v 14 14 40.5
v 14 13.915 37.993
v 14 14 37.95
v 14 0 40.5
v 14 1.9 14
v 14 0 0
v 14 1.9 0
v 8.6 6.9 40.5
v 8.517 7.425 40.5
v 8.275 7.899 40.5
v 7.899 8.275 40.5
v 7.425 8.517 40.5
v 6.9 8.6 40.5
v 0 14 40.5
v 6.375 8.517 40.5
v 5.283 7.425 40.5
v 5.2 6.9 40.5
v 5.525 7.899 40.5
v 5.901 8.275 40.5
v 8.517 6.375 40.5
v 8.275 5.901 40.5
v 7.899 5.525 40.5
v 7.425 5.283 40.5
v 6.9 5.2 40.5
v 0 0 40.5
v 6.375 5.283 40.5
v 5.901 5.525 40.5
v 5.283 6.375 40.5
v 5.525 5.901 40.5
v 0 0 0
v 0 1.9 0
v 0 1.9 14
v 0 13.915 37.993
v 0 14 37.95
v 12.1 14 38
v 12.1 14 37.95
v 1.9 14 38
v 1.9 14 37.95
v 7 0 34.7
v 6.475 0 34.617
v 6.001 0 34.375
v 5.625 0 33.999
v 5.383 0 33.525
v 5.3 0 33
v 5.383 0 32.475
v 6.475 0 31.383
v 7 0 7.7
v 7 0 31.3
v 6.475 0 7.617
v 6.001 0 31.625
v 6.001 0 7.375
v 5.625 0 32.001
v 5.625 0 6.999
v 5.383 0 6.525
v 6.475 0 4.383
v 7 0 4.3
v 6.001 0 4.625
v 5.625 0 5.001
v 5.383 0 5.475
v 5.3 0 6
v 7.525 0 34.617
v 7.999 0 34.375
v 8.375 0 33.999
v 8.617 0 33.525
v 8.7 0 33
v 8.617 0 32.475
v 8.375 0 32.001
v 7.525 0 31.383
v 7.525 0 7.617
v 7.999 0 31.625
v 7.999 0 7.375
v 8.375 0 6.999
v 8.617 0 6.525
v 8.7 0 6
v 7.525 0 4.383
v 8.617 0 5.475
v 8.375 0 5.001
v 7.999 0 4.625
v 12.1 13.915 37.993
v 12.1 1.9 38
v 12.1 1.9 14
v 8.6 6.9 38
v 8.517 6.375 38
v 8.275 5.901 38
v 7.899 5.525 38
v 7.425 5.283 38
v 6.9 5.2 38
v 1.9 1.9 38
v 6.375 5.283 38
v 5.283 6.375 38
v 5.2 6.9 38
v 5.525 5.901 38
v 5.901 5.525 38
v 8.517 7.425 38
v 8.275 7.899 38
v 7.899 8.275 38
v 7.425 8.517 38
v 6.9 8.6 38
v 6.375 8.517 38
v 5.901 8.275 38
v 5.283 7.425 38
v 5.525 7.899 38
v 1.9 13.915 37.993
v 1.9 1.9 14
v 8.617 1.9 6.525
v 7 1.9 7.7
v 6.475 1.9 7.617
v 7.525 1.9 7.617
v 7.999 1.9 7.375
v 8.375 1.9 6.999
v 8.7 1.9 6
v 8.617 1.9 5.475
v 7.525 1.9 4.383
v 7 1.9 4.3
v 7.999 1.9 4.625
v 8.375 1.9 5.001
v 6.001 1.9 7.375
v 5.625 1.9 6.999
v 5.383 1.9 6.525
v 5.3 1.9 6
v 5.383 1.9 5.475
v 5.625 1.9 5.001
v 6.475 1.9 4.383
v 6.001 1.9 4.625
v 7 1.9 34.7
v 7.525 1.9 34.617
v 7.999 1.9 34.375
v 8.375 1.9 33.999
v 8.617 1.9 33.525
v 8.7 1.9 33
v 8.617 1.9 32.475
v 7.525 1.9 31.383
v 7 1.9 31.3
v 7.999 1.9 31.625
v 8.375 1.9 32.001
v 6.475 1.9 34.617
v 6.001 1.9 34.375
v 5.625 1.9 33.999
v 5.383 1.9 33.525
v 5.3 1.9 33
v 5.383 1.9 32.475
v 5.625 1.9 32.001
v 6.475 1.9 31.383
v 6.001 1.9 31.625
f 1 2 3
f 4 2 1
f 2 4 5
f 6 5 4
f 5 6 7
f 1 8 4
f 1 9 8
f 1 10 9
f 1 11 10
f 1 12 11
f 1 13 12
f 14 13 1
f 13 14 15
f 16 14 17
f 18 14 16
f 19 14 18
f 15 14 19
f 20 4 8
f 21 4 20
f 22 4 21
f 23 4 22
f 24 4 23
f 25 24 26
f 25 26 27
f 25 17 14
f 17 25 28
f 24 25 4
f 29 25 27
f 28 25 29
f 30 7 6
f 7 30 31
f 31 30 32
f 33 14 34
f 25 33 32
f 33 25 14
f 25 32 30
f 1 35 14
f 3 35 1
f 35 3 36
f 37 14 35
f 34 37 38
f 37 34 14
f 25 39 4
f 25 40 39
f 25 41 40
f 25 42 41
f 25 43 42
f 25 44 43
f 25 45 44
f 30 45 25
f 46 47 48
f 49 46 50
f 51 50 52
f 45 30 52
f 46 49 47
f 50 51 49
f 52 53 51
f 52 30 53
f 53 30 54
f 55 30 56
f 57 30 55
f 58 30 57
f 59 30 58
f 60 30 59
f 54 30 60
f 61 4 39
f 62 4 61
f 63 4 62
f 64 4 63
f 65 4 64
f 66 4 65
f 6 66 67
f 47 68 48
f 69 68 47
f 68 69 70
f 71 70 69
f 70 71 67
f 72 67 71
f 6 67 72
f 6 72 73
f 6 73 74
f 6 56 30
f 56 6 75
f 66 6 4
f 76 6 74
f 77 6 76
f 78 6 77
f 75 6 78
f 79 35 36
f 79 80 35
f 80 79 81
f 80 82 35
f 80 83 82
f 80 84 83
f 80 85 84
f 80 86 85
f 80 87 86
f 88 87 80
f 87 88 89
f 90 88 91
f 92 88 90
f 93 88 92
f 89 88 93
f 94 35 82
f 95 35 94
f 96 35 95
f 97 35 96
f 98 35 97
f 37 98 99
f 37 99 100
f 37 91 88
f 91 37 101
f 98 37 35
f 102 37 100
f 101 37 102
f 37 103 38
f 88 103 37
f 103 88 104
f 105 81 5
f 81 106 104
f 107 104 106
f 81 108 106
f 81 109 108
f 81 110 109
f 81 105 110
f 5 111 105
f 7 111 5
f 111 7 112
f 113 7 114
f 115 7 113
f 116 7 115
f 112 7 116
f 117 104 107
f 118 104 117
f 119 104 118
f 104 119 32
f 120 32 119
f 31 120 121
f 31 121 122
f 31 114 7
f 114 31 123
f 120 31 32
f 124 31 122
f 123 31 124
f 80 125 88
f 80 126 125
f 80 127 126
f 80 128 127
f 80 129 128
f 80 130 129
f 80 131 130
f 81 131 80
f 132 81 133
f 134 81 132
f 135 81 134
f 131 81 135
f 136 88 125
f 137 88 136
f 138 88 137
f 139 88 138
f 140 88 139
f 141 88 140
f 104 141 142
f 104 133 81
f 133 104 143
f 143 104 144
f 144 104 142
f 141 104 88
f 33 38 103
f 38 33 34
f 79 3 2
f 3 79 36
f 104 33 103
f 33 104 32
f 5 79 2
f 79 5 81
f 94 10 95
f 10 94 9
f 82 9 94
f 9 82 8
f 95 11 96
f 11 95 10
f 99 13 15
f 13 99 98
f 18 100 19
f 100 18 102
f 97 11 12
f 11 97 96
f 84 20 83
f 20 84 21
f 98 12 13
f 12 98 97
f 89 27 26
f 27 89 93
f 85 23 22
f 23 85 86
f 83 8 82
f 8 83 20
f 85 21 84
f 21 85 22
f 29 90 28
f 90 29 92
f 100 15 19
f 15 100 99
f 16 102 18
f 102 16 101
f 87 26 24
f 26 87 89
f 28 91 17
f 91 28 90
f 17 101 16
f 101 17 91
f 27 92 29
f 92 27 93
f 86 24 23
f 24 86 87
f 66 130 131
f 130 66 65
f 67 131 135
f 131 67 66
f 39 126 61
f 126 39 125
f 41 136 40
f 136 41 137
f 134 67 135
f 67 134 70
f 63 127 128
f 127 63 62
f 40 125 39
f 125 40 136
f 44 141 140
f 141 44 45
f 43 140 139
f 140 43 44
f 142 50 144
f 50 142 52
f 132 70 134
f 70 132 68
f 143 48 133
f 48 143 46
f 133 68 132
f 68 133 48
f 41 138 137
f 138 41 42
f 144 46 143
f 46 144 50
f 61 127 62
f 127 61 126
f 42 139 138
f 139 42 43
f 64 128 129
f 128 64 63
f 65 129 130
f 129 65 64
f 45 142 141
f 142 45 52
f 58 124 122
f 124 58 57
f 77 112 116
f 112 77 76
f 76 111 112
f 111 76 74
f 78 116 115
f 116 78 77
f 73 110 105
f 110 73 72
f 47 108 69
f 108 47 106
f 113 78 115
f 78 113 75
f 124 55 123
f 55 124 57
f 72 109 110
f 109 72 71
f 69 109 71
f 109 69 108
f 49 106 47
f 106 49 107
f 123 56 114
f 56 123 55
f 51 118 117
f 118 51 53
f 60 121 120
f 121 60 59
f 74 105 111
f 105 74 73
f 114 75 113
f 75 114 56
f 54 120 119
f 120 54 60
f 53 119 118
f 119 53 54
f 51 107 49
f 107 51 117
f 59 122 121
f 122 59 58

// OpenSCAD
$fn = 20;

difference() {
    cube([14, 14, 40.5]);
    
    translate([1.9, 1.9, -1]) cube([10.2, 12.2, 39]);
    
    translate([-0.1, 1.9, -1]) cube([20.2, 12.2, 15]);
    
    // Diagonal
    translate([-0.1, 1.9, 14]) rotate([-26.6, 0, 0]) cube([20.2, 12.2, sqrt(12^2+24^2)]);
    
    // Cut holes
    translate([6.9, 6.9, 37]) cylinder(r=1.7, h=50);
    translate([7, -.1, 38-5]) rotate([-90, 0, 0]) cylinder(r=1.7, h=50);
    translate([7, -.1, 38-32]) rotate([-90, 0, 0]) cylinder(r=1.7, h=50);
}
